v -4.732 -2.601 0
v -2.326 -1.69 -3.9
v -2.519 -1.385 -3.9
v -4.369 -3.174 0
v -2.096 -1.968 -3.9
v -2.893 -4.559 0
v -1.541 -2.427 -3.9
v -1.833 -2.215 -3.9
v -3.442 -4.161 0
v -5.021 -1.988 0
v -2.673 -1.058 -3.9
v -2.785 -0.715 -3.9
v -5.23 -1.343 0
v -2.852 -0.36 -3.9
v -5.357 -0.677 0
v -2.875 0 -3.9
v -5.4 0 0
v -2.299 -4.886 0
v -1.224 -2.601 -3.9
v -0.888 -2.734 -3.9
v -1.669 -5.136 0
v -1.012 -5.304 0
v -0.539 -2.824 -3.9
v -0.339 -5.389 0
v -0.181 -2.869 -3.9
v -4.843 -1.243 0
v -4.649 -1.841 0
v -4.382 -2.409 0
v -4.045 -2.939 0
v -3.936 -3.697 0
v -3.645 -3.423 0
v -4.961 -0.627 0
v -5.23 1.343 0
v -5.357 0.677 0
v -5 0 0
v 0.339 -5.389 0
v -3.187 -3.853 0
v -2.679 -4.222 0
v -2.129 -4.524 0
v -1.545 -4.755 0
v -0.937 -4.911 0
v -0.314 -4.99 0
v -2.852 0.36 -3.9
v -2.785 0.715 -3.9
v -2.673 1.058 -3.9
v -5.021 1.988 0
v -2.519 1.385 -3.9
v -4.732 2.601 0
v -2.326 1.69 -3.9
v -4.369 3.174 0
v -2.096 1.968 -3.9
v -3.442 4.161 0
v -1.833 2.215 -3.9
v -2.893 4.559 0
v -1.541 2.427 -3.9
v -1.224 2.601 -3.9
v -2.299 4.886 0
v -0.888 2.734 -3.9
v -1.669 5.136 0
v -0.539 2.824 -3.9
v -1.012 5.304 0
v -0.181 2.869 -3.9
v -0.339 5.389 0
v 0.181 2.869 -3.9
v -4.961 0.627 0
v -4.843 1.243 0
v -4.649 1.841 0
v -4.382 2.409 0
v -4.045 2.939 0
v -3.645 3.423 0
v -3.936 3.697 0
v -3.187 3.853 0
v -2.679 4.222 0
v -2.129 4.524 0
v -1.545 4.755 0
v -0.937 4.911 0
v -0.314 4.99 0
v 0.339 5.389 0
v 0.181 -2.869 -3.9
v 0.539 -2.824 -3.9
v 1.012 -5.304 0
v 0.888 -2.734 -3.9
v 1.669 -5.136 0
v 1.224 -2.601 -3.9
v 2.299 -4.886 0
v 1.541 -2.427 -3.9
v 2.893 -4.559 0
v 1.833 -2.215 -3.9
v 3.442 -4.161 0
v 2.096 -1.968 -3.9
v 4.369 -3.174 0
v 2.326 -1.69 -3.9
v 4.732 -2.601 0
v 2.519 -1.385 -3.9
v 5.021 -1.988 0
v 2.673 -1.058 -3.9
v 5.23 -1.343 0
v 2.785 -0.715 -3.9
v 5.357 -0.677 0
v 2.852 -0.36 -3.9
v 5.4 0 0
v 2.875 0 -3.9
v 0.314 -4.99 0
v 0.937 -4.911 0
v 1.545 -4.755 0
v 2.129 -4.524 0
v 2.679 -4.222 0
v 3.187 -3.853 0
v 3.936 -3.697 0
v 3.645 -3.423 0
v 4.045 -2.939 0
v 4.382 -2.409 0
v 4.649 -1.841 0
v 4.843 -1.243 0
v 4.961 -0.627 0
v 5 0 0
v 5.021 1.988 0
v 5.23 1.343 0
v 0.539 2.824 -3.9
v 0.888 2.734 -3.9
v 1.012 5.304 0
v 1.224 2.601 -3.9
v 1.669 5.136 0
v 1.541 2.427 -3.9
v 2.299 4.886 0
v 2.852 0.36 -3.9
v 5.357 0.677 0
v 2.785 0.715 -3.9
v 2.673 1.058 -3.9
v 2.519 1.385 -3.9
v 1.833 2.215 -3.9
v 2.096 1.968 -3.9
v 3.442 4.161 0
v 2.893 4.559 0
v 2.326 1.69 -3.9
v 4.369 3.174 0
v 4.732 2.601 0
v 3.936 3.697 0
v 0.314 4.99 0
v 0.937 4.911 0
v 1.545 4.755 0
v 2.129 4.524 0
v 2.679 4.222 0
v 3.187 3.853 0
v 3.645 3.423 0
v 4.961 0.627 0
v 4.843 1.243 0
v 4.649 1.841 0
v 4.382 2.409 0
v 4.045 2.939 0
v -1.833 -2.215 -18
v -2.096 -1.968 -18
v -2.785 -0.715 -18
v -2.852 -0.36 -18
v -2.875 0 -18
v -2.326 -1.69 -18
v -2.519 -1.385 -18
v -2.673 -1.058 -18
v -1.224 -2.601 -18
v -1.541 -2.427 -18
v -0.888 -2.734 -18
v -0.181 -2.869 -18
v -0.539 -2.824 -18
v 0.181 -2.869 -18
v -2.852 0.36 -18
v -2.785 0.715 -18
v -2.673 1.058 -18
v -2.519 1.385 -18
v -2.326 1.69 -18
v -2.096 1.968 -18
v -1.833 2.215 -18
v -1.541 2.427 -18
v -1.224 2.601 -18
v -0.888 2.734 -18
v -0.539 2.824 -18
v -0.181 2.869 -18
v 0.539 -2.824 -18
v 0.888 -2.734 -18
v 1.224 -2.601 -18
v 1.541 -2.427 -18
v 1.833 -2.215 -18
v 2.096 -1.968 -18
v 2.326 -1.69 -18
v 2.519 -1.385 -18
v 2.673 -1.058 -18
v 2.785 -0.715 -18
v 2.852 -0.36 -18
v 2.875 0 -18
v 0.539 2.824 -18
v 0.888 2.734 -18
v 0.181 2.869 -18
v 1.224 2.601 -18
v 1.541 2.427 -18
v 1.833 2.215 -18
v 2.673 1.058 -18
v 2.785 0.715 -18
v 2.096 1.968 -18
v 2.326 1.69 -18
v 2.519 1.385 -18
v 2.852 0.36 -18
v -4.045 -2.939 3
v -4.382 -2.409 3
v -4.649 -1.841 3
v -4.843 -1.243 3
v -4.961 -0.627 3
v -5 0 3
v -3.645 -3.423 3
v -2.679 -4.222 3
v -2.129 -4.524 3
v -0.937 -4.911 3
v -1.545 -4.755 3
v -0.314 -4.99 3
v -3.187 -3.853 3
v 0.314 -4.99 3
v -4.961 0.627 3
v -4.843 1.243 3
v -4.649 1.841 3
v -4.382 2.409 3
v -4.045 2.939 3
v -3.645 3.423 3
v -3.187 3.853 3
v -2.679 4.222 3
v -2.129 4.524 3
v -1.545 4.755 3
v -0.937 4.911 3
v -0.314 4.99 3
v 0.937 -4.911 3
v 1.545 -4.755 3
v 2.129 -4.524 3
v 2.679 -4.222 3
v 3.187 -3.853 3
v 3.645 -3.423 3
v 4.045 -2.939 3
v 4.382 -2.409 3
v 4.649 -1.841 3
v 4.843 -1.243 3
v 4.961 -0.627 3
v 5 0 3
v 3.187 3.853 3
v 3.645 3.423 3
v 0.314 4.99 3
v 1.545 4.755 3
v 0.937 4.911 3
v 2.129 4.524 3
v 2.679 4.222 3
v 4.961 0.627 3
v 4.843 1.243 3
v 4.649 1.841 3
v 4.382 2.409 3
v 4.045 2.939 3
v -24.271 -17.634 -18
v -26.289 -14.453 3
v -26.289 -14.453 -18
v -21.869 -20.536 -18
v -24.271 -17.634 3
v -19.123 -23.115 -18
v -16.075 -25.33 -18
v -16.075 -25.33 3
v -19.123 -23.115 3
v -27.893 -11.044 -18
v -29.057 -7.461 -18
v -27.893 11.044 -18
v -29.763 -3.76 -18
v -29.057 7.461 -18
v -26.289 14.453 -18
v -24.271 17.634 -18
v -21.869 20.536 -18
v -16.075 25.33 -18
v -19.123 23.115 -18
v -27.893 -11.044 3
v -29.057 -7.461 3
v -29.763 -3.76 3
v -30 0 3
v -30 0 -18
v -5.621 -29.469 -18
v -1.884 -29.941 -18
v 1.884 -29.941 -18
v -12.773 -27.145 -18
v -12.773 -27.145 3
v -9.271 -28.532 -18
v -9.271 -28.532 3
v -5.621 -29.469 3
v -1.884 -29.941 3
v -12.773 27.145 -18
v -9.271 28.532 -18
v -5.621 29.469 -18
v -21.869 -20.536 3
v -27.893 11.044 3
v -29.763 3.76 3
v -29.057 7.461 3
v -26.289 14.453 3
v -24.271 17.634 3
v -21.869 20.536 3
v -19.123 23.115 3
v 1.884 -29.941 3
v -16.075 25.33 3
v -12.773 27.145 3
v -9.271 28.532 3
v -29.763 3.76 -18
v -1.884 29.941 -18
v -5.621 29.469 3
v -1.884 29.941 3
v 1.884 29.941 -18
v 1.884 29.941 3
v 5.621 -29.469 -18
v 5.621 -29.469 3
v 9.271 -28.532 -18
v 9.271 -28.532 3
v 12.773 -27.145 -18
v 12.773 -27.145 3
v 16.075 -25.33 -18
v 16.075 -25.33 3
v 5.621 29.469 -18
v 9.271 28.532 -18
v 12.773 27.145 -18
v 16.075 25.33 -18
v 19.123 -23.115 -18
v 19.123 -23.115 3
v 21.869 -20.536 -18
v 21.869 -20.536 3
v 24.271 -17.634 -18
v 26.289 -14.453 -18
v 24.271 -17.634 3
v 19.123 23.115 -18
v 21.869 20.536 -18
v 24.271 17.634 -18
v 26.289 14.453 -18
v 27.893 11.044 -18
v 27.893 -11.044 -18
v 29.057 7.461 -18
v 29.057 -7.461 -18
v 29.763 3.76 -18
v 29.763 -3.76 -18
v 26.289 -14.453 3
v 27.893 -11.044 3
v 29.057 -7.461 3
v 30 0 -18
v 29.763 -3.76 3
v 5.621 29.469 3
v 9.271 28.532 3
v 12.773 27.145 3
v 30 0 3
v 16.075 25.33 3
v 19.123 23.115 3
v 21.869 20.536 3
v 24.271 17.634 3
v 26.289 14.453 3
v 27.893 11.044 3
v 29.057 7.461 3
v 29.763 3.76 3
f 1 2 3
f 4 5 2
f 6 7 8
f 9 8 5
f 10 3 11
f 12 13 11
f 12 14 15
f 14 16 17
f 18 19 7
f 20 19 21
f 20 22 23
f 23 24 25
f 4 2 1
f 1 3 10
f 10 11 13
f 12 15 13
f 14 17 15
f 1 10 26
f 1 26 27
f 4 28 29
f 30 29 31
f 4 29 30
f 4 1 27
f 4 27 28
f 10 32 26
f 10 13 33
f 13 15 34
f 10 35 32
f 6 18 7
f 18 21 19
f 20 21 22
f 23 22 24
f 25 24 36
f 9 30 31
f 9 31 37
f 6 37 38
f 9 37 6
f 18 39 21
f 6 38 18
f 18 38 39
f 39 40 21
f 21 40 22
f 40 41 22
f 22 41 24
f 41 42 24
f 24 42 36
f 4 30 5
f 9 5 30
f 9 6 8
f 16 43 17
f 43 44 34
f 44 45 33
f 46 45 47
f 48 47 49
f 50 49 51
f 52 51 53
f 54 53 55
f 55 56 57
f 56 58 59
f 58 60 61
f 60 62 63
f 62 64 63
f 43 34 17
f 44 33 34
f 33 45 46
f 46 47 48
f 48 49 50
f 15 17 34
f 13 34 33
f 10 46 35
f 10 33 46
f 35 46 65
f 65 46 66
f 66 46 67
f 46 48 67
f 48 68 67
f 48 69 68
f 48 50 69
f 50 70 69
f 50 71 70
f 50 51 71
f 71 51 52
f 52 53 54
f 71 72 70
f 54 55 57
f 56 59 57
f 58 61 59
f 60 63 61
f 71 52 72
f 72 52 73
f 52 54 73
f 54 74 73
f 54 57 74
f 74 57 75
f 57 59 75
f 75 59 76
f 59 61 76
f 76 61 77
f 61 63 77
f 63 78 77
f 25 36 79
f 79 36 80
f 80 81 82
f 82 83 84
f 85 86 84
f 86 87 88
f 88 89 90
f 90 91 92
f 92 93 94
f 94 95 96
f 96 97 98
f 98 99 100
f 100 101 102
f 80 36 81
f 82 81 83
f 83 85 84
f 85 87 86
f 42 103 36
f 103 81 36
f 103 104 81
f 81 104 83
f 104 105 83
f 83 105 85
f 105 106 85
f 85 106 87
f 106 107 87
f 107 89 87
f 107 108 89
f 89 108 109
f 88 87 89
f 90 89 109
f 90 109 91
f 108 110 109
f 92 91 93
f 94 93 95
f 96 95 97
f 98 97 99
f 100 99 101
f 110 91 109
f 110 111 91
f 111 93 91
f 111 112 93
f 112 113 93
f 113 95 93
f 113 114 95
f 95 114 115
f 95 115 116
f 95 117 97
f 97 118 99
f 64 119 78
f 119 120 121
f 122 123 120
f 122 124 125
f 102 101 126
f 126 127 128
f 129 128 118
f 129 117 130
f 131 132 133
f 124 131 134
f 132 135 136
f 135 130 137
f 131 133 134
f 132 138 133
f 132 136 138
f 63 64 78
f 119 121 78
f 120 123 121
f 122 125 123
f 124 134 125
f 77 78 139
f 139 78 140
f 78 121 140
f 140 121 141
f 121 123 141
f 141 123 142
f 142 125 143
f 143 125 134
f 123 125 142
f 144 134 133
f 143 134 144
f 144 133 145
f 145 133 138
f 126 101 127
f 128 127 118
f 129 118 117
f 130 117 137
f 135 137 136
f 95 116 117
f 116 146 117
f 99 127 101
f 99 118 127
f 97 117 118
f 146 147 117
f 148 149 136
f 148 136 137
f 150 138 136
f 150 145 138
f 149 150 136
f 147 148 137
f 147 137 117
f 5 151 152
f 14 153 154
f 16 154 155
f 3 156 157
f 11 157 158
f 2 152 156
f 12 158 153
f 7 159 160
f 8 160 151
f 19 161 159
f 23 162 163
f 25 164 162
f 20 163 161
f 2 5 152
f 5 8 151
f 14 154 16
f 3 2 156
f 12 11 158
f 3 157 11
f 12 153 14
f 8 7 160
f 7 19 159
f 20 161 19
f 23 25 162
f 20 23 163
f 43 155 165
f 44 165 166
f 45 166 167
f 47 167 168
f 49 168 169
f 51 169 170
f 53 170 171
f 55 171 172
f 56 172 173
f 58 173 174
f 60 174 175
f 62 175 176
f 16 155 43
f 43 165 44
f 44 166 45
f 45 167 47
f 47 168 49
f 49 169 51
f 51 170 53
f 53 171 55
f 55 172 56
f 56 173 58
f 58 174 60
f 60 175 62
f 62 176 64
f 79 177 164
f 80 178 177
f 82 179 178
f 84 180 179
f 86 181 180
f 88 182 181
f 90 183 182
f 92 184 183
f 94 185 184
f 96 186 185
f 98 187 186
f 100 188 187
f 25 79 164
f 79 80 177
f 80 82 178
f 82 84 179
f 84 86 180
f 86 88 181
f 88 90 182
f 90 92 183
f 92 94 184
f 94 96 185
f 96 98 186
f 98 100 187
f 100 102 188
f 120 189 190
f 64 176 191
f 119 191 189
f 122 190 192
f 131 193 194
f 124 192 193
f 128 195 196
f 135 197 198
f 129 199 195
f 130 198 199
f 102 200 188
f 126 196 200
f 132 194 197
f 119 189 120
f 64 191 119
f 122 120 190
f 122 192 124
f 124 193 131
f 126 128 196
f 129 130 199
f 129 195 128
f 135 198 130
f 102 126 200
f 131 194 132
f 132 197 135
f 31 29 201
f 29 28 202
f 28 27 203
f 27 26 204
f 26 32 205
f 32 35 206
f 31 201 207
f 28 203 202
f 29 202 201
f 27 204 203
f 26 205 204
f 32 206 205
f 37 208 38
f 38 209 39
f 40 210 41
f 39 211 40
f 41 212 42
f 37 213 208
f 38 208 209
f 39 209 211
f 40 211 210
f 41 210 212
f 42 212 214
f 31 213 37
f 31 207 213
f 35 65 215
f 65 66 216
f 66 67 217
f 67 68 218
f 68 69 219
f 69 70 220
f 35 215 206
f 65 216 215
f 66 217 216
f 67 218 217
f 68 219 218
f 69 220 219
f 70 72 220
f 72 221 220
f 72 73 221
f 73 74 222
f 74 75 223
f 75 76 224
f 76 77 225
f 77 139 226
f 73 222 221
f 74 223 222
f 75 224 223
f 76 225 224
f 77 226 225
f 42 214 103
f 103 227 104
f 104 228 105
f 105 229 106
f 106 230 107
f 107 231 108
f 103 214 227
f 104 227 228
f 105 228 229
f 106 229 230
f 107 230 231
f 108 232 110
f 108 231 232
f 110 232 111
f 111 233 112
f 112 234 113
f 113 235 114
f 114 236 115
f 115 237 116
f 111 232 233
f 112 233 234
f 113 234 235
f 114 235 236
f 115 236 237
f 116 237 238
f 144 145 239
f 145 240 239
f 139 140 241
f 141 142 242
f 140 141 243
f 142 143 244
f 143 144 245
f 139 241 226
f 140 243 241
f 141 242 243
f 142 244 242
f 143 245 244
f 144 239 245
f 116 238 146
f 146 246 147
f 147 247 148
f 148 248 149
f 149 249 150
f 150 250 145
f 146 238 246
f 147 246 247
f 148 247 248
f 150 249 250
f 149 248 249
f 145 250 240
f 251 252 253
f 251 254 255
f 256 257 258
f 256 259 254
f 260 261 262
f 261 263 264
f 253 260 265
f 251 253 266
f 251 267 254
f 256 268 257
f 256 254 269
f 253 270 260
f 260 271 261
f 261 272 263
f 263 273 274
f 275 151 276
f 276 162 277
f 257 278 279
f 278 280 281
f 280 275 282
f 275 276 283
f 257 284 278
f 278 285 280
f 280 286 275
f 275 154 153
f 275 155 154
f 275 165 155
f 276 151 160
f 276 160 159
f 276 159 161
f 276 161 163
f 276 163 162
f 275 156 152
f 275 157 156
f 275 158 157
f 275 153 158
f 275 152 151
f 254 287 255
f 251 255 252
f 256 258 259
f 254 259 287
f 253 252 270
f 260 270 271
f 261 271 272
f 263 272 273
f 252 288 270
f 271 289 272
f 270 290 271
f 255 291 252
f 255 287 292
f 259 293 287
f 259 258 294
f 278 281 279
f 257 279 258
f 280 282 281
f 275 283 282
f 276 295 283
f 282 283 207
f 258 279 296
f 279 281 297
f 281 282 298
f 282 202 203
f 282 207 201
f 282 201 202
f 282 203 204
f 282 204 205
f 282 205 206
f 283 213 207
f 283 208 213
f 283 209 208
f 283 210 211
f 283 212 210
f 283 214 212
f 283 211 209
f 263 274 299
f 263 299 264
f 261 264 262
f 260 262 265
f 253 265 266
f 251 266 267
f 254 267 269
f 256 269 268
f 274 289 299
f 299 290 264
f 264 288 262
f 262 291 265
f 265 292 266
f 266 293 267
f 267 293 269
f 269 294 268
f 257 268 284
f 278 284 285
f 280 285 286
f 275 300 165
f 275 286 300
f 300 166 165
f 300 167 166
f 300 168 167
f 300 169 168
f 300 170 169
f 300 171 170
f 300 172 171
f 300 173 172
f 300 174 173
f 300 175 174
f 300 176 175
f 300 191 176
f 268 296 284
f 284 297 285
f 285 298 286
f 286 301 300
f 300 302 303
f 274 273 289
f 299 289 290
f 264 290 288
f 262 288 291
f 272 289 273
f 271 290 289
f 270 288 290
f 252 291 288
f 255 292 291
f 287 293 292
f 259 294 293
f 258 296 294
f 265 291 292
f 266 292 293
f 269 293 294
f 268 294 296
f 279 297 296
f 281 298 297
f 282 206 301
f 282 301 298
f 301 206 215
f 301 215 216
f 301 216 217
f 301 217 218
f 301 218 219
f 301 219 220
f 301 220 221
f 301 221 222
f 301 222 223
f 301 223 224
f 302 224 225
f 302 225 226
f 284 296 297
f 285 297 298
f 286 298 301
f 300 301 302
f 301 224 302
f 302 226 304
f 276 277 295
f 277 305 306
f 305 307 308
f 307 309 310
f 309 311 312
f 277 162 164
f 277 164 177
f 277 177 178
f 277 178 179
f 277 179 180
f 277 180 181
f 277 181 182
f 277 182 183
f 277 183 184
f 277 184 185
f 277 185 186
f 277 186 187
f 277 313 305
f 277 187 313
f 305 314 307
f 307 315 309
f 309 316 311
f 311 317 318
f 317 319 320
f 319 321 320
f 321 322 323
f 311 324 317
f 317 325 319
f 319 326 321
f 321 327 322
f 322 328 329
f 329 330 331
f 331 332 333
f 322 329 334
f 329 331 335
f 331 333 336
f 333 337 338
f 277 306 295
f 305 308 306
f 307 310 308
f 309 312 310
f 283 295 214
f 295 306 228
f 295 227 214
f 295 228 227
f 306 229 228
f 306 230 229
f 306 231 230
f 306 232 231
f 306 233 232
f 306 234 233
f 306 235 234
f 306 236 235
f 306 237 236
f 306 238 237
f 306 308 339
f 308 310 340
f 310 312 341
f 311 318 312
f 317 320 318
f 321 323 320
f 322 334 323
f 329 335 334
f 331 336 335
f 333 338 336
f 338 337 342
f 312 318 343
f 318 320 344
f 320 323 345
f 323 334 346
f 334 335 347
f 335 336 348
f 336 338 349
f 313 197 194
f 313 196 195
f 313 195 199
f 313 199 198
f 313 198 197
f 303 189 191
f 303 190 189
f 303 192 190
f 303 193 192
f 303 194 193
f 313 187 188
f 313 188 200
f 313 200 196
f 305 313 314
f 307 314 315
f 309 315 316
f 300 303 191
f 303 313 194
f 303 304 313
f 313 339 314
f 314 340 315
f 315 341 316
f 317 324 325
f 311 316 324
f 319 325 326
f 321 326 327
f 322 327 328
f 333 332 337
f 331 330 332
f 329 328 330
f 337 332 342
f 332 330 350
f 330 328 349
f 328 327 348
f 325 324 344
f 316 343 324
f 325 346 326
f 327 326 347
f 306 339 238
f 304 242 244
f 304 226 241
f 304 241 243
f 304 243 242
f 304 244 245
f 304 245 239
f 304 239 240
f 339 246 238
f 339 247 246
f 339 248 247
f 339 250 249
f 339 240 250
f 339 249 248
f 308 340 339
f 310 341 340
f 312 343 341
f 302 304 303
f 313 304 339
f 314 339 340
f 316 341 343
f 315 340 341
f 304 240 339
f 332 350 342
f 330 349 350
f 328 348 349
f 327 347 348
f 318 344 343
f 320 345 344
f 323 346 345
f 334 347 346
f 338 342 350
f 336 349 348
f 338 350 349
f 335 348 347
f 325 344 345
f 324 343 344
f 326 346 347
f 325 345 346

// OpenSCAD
$fn = 50;


difference() {
	union() {
		translate(v = [0, 0, -18.0000000000]) {
			cylinder(h = 21, r = 30.0000000000);
		}
		#translate(v = [0, 0, -21.0000000000]) {
			cylinder(h = 21, r = 2.8750000000);
		}
	}
	union() {
		translate(v = [0, 0, 0]) {
			rotate(a = [0, 0, 0]) {
				difference() {
					union() {
						translate(v = [0, 0, -21.0000000000]) {
							cylinder(h = 21, r = 2.6000000000);
						}
						translate(v = [0, 0, -3.9000000000]) {
							cylinder(h = 3.9000000000, r1 = 2.8750000000, r2 = 5.4000000000);
						}
						translate(v = [0, 0, -21.0000000000]) {
							cylinder(h = 21, r = 2.8750000000);
						}
						translate(v = [0, 0, -21.0000000000]) {
							cylinder(h = 21, r = 2.6000000000);
						}
					}
					union();
				}
			}
		}
		#cylinder(h = 3, r = 5.0000000000);
	}
}
